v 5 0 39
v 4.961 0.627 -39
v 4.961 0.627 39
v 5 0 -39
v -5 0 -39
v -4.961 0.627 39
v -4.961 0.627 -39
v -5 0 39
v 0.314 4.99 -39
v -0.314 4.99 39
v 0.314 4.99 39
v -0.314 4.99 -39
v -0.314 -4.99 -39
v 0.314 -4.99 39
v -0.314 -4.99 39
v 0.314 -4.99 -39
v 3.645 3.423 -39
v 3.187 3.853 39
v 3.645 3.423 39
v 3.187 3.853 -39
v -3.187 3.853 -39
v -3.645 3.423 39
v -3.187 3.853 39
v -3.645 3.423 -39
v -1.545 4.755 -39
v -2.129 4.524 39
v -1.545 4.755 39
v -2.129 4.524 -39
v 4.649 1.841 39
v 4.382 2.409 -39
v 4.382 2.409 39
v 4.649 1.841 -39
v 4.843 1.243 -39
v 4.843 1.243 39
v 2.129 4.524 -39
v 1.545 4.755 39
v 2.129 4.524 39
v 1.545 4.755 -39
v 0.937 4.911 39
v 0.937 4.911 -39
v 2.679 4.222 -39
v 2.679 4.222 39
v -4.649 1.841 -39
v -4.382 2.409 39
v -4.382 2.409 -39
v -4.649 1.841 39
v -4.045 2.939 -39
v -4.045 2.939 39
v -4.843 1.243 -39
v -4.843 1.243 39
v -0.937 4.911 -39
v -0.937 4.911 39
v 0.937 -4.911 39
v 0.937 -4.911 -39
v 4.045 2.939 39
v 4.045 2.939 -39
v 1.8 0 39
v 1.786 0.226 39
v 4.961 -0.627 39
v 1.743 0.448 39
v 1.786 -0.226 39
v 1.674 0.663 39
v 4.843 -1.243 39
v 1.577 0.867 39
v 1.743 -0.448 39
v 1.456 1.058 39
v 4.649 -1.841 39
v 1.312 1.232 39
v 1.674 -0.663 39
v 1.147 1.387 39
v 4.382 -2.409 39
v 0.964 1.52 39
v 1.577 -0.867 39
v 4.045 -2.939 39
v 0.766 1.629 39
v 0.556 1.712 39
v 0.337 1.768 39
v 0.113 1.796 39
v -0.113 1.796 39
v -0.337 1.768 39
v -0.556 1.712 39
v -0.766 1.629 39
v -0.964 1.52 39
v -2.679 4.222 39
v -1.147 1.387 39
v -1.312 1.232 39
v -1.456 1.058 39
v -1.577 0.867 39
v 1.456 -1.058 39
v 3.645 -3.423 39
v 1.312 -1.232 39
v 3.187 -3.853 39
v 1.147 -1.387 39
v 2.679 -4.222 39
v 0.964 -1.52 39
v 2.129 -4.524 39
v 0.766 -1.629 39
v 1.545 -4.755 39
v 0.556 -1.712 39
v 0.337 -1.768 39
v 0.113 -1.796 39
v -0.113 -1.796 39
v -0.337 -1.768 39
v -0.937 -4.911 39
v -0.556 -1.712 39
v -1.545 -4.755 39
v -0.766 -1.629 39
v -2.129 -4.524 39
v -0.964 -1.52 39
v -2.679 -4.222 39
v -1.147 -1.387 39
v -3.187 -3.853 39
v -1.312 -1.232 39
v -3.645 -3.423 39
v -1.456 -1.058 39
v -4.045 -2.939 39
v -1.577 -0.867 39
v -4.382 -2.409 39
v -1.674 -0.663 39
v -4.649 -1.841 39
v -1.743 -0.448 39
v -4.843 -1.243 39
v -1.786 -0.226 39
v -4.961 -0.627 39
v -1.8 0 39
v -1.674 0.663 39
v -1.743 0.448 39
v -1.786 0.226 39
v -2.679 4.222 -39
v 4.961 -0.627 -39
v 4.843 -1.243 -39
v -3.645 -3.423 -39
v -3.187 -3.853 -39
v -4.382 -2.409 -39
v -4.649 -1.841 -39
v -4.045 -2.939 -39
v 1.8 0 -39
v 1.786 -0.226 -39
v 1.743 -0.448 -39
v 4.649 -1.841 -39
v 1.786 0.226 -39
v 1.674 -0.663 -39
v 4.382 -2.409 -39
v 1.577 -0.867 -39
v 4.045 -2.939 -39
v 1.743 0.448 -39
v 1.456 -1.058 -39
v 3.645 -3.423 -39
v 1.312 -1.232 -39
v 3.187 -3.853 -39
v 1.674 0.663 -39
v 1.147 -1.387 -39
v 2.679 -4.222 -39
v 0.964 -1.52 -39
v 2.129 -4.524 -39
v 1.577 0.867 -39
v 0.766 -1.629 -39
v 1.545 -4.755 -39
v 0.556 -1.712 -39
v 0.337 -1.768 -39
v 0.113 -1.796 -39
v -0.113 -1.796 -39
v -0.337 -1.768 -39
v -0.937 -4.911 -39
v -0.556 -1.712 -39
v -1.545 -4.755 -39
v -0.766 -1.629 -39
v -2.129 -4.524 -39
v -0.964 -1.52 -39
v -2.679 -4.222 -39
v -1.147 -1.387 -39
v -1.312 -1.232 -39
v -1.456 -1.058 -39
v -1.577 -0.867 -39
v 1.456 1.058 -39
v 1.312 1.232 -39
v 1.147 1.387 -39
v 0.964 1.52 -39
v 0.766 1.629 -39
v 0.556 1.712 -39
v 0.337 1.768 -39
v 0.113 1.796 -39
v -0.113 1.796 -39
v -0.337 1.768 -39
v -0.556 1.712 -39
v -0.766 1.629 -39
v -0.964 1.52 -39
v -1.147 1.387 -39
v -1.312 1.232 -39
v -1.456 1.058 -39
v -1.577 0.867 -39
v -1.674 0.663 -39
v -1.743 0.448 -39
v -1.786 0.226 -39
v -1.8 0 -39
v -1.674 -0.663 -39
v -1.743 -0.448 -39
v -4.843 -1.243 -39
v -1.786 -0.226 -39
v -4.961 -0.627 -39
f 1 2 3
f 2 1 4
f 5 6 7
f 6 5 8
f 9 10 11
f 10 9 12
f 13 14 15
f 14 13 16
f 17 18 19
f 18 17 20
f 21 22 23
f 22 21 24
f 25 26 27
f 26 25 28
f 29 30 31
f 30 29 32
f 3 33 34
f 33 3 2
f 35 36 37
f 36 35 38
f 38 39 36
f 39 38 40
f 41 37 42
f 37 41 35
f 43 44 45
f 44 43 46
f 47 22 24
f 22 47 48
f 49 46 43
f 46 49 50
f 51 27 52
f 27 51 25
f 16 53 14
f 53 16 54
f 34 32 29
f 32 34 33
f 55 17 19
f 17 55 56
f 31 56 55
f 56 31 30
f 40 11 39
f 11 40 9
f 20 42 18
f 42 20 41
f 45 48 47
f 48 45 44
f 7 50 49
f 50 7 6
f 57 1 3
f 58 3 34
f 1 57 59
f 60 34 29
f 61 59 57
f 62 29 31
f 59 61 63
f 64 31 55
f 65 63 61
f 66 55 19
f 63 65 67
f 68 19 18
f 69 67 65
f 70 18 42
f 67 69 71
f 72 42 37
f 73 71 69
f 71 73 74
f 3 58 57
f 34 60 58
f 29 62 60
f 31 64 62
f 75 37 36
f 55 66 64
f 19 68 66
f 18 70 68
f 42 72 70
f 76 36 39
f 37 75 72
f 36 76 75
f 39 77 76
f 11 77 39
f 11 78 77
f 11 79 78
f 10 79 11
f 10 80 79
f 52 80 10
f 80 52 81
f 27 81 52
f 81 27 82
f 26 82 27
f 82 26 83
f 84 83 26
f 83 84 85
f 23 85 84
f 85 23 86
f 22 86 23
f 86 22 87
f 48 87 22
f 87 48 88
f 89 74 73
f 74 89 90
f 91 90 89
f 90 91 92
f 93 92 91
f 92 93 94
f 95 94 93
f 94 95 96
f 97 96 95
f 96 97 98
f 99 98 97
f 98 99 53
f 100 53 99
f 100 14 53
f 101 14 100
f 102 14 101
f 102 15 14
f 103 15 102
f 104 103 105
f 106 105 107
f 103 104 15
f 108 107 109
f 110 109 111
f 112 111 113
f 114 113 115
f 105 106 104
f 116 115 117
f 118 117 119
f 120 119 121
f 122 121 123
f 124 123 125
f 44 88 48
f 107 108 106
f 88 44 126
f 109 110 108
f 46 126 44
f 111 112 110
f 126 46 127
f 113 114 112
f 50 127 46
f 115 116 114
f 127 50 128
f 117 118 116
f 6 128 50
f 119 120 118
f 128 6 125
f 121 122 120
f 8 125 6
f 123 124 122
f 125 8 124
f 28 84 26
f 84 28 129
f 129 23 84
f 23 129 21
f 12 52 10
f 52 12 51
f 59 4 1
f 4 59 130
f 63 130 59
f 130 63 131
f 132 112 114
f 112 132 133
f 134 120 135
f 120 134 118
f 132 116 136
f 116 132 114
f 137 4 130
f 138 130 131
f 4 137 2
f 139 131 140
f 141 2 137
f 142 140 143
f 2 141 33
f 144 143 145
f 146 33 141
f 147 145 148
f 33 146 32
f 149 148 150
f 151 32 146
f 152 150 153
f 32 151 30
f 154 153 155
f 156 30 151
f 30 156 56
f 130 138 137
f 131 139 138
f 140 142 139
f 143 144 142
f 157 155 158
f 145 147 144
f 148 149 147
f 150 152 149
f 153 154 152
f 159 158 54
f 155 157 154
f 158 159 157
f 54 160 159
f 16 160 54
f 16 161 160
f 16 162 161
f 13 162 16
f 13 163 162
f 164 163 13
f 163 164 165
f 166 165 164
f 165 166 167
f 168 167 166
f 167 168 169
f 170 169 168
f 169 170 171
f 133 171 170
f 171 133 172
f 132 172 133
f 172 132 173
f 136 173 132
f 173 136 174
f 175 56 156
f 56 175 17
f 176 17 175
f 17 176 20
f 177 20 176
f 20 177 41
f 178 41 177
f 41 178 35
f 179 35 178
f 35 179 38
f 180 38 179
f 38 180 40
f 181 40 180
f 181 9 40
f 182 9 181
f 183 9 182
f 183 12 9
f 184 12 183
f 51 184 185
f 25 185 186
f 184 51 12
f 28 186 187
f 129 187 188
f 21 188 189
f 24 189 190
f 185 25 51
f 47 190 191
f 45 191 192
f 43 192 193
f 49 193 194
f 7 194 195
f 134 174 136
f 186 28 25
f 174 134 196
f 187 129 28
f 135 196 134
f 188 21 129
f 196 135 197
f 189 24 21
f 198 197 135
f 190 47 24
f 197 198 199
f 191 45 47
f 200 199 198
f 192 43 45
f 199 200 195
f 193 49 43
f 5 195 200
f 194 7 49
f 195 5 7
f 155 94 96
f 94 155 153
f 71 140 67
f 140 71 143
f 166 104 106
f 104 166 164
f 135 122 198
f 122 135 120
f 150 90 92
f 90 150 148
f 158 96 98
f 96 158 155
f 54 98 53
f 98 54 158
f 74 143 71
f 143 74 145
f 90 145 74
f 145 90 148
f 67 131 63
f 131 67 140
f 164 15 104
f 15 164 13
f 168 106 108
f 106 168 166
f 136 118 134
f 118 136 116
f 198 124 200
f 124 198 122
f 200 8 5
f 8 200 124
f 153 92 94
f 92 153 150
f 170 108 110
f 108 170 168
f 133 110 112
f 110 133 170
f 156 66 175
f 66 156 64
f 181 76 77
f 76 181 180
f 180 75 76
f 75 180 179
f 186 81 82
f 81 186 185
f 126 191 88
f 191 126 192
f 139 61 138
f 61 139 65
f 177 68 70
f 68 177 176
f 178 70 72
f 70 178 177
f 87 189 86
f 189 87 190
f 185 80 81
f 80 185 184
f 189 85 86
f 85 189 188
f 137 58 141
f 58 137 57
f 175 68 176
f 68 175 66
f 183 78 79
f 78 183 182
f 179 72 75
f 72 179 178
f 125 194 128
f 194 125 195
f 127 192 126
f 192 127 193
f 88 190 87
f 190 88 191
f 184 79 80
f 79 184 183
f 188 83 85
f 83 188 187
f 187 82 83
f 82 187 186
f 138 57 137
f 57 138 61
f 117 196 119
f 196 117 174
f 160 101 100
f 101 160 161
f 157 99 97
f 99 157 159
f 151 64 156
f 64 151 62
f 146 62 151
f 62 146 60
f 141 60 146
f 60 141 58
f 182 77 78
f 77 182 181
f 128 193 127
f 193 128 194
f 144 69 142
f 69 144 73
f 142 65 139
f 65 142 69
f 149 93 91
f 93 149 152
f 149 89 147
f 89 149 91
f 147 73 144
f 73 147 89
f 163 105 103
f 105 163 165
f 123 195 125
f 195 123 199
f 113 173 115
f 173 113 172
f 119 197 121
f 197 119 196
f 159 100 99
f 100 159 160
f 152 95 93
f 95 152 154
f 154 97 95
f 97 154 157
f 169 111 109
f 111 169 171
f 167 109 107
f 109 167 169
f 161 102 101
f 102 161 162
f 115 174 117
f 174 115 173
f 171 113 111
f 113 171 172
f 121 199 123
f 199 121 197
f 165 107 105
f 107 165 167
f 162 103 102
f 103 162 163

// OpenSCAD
$fn = 50;


difference() {
	union() {
		translate(v = [0, 0, -39.0000000000]) {
			cylinder(h = 78, r = 5.0000000000);
		}
	}
	union() {
		translate(v = [0, 0, -100.0000000000]) {
			cylinder(h = 200, r = 1.8000000000);
		}
	}
}
